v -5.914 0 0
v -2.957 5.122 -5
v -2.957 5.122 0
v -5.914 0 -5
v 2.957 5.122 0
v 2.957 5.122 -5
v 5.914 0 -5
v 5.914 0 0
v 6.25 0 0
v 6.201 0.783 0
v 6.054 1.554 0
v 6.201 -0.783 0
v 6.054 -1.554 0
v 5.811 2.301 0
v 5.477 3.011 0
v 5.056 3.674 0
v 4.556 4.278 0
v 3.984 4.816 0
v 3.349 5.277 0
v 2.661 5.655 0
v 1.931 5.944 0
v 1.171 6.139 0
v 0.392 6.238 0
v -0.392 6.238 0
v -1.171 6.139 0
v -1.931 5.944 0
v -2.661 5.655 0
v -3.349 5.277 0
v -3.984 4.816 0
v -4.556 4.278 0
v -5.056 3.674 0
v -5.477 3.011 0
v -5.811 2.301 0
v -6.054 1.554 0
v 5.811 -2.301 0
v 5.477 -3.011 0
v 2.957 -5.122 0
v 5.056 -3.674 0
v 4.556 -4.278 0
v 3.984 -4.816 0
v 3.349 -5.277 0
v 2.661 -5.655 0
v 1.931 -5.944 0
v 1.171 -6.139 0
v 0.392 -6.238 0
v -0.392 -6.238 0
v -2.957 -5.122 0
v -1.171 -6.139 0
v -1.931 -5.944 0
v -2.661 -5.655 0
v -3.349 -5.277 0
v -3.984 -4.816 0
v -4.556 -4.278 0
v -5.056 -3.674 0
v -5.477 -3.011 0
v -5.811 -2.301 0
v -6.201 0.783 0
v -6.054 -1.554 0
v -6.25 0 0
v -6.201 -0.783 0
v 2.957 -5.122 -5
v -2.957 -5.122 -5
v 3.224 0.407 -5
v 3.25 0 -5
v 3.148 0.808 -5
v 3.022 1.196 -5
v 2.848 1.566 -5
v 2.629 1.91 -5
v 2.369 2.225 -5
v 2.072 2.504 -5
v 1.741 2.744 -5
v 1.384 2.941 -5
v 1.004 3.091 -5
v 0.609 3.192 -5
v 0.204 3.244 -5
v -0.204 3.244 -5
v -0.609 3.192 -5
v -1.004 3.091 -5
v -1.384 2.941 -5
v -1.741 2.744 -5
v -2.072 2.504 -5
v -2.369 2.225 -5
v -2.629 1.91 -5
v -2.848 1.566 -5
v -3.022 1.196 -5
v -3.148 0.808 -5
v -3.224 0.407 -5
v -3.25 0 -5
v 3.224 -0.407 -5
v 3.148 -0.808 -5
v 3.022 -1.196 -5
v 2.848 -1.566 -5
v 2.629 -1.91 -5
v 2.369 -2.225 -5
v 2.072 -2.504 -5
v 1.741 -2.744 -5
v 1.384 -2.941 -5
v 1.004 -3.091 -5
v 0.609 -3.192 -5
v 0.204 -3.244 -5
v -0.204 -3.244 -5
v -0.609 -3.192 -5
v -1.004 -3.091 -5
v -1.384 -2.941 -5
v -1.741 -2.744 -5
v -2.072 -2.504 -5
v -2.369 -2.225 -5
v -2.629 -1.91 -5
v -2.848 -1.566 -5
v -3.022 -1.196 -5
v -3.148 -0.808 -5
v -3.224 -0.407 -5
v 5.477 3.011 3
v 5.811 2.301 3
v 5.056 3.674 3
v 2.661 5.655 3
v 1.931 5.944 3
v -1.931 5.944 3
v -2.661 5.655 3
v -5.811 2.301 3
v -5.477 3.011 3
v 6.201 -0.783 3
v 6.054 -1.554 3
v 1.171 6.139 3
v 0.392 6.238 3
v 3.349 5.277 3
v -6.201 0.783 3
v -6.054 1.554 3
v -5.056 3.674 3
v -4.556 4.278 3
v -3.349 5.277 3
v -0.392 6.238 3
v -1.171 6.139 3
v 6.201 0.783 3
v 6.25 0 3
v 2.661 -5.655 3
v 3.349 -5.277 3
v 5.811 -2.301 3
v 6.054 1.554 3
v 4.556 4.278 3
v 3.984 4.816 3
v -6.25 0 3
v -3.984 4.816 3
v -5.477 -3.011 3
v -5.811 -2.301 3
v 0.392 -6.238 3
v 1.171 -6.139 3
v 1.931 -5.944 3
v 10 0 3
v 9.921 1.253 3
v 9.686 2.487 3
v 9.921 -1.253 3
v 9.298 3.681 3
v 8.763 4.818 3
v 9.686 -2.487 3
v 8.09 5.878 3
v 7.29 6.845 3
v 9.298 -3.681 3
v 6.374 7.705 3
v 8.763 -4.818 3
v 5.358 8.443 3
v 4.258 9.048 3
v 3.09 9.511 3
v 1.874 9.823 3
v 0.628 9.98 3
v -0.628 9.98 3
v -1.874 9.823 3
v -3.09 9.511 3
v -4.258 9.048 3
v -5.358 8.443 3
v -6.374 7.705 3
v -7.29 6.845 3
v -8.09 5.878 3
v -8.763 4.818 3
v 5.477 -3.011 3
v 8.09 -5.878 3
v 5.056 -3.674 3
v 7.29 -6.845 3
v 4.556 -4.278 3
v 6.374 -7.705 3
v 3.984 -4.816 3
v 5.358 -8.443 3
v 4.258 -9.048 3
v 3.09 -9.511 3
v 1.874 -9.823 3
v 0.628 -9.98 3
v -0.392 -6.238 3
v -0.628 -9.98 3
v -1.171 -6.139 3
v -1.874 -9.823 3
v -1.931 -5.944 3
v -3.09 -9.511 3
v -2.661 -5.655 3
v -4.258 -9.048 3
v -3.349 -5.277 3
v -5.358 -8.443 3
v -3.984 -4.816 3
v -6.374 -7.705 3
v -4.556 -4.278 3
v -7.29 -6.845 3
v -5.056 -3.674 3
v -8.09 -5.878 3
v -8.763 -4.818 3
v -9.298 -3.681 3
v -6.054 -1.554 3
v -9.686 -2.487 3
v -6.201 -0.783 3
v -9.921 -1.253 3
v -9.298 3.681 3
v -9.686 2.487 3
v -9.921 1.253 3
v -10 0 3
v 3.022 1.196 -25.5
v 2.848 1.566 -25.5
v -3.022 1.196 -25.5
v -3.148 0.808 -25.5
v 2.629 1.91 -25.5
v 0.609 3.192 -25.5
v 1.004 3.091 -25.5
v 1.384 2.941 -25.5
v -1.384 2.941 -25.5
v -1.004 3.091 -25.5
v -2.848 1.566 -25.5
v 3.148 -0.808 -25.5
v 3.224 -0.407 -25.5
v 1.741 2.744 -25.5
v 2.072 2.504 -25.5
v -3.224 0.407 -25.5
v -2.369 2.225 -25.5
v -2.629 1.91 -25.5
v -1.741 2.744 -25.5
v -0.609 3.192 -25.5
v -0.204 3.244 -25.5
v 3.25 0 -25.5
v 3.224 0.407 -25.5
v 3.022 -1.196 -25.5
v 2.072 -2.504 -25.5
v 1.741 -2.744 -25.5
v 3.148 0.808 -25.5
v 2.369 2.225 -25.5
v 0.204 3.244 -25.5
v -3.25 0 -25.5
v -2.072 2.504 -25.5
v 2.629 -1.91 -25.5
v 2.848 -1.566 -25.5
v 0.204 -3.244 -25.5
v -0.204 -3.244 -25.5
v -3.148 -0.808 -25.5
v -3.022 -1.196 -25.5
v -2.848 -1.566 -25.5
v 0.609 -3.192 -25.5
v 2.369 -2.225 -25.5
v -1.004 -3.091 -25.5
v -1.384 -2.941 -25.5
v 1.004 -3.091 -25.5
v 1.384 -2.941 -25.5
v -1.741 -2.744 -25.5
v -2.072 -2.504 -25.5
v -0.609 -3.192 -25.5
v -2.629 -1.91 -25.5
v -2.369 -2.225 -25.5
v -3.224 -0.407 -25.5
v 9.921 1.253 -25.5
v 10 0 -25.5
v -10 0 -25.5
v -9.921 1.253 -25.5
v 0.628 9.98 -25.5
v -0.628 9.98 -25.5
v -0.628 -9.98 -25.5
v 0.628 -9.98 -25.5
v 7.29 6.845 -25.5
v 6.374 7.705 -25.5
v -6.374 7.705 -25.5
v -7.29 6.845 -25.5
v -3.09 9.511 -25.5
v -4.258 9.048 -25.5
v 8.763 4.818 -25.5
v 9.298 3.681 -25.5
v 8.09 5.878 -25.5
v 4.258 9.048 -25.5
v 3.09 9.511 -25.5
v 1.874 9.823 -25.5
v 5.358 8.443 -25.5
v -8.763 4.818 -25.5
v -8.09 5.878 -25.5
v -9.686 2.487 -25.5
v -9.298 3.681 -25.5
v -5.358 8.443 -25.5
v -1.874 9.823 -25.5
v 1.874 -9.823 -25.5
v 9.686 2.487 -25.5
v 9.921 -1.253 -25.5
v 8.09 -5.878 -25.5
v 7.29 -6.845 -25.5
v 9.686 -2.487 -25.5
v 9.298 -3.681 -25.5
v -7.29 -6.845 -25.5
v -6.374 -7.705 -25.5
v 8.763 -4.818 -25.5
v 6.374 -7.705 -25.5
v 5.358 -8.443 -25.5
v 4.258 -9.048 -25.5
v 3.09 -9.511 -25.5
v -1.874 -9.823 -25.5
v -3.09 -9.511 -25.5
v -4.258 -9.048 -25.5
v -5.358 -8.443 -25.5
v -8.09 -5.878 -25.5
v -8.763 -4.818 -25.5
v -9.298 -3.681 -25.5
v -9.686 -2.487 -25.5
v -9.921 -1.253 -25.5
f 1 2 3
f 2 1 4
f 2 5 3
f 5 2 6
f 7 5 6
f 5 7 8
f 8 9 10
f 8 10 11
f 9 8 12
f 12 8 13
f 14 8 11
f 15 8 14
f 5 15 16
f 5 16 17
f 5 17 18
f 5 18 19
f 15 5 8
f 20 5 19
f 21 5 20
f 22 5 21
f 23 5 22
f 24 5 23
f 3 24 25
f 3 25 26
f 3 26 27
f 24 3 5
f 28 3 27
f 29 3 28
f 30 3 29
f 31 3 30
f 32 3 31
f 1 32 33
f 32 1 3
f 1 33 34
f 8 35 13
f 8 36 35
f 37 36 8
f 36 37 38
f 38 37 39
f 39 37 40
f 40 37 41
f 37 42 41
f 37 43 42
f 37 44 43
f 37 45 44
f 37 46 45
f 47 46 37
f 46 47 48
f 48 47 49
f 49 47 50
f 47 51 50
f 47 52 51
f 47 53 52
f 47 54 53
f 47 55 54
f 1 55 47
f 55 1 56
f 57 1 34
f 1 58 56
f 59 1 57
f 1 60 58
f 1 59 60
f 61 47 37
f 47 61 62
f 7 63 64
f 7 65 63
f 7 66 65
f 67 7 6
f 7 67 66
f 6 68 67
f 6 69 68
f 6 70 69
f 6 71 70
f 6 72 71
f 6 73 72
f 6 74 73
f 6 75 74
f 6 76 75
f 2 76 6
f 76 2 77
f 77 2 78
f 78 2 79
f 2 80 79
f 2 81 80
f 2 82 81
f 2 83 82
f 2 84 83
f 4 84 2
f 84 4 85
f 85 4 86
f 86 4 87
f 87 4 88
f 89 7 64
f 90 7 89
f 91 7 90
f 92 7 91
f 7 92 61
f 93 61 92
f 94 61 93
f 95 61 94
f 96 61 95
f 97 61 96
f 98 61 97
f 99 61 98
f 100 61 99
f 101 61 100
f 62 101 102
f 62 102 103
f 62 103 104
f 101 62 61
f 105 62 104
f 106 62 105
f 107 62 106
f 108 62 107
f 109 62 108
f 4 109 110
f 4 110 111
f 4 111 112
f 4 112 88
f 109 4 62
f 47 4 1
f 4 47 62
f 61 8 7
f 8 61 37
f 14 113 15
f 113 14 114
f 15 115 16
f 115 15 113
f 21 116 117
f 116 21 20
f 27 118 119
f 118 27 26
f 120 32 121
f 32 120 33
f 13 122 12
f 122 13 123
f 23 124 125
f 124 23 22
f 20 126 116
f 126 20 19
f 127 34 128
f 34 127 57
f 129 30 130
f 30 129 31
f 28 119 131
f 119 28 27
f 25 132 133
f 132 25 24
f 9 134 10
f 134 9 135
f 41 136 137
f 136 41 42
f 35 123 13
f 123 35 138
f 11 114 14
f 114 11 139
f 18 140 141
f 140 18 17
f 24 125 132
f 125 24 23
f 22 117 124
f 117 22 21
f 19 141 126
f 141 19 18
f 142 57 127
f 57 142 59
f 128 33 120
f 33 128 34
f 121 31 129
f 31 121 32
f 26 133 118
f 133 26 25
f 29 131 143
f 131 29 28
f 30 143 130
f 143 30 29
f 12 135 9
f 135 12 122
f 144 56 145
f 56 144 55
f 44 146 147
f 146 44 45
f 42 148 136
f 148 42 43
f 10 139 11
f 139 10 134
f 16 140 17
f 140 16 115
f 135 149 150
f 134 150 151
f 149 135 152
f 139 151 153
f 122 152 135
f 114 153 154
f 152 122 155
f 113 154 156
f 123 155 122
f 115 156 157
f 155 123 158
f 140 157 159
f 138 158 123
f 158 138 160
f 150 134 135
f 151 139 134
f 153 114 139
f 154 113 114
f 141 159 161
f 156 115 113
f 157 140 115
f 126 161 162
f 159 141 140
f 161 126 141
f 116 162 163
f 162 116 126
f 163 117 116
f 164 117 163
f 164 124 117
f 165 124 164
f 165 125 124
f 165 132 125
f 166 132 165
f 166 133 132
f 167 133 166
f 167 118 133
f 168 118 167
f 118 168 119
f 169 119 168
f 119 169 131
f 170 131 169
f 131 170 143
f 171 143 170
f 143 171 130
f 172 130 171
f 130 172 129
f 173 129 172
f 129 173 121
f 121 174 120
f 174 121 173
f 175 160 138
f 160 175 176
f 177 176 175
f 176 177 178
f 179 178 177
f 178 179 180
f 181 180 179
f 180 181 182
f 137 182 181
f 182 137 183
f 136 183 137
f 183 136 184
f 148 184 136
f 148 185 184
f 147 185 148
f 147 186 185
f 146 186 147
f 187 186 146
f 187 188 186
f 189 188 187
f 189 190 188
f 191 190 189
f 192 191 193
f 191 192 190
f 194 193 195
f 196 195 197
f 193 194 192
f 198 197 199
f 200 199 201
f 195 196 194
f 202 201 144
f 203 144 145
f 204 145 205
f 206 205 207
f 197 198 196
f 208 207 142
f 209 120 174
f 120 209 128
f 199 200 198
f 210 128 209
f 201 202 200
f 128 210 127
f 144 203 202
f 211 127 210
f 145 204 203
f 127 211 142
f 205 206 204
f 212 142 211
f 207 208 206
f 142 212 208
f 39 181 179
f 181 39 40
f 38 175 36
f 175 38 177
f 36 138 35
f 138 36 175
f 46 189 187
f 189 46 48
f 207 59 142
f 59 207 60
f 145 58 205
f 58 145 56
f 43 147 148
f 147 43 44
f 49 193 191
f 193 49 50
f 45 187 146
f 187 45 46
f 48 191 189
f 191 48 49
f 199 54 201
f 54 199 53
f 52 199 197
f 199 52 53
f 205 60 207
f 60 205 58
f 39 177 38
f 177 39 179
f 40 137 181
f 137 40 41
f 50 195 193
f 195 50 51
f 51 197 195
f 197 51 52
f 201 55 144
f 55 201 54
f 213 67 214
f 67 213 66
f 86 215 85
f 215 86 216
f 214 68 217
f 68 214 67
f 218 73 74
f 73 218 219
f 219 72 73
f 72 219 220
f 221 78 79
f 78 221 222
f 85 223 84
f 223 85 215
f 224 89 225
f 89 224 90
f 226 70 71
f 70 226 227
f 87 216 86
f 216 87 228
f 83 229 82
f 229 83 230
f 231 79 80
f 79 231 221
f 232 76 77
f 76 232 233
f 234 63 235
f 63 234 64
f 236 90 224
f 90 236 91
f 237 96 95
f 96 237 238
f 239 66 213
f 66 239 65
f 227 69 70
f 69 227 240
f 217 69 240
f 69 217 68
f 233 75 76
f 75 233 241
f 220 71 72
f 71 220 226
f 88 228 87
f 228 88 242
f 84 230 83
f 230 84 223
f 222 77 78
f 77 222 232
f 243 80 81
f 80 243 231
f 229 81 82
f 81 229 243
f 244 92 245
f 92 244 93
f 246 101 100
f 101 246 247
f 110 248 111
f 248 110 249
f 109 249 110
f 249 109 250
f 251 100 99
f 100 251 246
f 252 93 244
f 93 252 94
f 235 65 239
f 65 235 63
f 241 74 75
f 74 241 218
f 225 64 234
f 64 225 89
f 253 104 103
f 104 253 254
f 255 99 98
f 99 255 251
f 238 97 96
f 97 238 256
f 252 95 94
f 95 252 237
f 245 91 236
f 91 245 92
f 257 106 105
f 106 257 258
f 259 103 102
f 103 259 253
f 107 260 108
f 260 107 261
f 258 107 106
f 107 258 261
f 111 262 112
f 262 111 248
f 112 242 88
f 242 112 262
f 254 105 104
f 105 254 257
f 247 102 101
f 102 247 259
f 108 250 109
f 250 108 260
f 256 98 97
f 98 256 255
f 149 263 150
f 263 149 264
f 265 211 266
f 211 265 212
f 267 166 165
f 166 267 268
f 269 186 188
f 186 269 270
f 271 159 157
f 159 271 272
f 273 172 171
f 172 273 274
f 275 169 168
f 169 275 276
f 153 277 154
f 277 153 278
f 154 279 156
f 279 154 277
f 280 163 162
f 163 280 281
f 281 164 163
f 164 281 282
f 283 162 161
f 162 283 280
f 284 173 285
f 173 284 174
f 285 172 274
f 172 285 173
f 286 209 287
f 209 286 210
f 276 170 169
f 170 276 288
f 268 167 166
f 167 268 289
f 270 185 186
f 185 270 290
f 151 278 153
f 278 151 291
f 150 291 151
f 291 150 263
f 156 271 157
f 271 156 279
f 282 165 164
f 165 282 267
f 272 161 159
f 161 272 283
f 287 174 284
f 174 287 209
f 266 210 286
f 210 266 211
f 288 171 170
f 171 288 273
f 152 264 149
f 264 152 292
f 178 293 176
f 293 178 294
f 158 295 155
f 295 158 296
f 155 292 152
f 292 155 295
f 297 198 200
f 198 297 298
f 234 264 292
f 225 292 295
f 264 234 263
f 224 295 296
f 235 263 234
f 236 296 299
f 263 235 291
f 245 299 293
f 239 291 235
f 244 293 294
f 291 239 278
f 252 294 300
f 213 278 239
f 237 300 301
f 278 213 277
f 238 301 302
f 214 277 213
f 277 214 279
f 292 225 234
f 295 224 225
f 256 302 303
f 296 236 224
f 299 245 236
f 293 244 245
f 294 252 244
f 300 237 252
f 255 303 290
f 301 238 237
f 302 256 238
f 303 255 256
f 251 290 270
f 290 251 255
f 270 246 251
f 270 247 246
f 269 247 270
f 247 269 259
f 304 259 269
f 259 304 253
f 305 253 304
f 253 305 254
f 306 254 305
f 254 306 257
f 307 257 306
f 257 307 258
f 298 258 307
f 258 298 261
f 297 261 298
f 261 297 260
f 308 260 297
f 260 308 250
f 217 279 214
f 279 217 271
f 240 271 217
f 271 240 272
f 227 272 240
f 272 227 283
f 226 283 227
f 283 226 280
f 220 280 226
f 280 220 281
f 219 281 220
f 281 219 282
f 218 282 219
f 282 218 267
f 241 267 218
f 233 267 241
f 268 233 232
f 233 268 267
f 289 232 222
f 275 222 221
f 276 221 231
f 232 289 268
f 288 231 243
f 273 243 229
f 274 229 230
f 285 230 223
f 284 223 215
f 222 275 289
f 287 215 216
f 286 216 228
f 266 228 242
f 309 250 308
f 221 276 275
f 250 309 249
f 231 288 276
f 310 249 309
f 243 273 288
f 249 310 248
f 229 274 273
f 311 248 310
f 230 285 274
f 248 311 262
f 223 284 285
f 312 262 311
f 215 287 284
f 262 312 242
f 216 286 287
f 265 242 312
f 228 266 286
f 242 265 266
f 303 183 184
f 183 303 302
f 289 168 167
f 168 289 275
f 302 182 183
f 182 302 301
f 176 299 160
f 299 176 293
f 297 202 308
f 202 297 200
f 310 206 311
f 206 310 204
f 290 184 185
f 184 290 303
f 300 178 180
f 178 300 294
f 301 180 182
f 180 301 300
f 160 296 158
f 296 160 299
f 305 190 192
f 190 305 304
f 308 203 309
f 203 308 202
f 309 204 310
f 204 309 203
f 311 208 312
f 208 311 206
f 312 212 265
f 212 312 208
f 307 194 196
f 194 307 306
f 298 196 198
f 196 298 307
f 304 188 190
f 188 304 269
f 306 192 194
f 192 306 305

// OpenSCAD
$fn = 50;


difference() {
	union() {
		translate(v = [0, 0, -25.5000000000]) {
			cylinder(h = 28.5000000000, r = 10.0000000000);
		}
		#translate(v = [0, 0, -27.0000000000]) {
			cylinder(h = 27, r = 2.8750000000);
		}
	}
	union() {
		translate(v = [0, 0, 0]) {
			rotate(a = [0, 0, 0]) {
				difference() {
					union() {
						translate(v = [0, 0, -5]) {
							linear_extrude(height = 5) {
								polygon(points = [[5.9142500000, 0.0000000000], [2.9571250000, 5.1218907443], [-2.9571250000, 5.1218907443], [-5.9142500000, 0.0000000000], [-2.9571250000, -5.1218907443], [2.9571250000, -5.1218907443]]);
							}
						}
					}
					union();
				}
			}
		}
		#cylinder(h = 3, r = 6.2500000000);
		#translate(v = [0, 0, -100.0000000000]) {
			cylinder(h = 200, r = 3.2500000000);
		}
	}
}
